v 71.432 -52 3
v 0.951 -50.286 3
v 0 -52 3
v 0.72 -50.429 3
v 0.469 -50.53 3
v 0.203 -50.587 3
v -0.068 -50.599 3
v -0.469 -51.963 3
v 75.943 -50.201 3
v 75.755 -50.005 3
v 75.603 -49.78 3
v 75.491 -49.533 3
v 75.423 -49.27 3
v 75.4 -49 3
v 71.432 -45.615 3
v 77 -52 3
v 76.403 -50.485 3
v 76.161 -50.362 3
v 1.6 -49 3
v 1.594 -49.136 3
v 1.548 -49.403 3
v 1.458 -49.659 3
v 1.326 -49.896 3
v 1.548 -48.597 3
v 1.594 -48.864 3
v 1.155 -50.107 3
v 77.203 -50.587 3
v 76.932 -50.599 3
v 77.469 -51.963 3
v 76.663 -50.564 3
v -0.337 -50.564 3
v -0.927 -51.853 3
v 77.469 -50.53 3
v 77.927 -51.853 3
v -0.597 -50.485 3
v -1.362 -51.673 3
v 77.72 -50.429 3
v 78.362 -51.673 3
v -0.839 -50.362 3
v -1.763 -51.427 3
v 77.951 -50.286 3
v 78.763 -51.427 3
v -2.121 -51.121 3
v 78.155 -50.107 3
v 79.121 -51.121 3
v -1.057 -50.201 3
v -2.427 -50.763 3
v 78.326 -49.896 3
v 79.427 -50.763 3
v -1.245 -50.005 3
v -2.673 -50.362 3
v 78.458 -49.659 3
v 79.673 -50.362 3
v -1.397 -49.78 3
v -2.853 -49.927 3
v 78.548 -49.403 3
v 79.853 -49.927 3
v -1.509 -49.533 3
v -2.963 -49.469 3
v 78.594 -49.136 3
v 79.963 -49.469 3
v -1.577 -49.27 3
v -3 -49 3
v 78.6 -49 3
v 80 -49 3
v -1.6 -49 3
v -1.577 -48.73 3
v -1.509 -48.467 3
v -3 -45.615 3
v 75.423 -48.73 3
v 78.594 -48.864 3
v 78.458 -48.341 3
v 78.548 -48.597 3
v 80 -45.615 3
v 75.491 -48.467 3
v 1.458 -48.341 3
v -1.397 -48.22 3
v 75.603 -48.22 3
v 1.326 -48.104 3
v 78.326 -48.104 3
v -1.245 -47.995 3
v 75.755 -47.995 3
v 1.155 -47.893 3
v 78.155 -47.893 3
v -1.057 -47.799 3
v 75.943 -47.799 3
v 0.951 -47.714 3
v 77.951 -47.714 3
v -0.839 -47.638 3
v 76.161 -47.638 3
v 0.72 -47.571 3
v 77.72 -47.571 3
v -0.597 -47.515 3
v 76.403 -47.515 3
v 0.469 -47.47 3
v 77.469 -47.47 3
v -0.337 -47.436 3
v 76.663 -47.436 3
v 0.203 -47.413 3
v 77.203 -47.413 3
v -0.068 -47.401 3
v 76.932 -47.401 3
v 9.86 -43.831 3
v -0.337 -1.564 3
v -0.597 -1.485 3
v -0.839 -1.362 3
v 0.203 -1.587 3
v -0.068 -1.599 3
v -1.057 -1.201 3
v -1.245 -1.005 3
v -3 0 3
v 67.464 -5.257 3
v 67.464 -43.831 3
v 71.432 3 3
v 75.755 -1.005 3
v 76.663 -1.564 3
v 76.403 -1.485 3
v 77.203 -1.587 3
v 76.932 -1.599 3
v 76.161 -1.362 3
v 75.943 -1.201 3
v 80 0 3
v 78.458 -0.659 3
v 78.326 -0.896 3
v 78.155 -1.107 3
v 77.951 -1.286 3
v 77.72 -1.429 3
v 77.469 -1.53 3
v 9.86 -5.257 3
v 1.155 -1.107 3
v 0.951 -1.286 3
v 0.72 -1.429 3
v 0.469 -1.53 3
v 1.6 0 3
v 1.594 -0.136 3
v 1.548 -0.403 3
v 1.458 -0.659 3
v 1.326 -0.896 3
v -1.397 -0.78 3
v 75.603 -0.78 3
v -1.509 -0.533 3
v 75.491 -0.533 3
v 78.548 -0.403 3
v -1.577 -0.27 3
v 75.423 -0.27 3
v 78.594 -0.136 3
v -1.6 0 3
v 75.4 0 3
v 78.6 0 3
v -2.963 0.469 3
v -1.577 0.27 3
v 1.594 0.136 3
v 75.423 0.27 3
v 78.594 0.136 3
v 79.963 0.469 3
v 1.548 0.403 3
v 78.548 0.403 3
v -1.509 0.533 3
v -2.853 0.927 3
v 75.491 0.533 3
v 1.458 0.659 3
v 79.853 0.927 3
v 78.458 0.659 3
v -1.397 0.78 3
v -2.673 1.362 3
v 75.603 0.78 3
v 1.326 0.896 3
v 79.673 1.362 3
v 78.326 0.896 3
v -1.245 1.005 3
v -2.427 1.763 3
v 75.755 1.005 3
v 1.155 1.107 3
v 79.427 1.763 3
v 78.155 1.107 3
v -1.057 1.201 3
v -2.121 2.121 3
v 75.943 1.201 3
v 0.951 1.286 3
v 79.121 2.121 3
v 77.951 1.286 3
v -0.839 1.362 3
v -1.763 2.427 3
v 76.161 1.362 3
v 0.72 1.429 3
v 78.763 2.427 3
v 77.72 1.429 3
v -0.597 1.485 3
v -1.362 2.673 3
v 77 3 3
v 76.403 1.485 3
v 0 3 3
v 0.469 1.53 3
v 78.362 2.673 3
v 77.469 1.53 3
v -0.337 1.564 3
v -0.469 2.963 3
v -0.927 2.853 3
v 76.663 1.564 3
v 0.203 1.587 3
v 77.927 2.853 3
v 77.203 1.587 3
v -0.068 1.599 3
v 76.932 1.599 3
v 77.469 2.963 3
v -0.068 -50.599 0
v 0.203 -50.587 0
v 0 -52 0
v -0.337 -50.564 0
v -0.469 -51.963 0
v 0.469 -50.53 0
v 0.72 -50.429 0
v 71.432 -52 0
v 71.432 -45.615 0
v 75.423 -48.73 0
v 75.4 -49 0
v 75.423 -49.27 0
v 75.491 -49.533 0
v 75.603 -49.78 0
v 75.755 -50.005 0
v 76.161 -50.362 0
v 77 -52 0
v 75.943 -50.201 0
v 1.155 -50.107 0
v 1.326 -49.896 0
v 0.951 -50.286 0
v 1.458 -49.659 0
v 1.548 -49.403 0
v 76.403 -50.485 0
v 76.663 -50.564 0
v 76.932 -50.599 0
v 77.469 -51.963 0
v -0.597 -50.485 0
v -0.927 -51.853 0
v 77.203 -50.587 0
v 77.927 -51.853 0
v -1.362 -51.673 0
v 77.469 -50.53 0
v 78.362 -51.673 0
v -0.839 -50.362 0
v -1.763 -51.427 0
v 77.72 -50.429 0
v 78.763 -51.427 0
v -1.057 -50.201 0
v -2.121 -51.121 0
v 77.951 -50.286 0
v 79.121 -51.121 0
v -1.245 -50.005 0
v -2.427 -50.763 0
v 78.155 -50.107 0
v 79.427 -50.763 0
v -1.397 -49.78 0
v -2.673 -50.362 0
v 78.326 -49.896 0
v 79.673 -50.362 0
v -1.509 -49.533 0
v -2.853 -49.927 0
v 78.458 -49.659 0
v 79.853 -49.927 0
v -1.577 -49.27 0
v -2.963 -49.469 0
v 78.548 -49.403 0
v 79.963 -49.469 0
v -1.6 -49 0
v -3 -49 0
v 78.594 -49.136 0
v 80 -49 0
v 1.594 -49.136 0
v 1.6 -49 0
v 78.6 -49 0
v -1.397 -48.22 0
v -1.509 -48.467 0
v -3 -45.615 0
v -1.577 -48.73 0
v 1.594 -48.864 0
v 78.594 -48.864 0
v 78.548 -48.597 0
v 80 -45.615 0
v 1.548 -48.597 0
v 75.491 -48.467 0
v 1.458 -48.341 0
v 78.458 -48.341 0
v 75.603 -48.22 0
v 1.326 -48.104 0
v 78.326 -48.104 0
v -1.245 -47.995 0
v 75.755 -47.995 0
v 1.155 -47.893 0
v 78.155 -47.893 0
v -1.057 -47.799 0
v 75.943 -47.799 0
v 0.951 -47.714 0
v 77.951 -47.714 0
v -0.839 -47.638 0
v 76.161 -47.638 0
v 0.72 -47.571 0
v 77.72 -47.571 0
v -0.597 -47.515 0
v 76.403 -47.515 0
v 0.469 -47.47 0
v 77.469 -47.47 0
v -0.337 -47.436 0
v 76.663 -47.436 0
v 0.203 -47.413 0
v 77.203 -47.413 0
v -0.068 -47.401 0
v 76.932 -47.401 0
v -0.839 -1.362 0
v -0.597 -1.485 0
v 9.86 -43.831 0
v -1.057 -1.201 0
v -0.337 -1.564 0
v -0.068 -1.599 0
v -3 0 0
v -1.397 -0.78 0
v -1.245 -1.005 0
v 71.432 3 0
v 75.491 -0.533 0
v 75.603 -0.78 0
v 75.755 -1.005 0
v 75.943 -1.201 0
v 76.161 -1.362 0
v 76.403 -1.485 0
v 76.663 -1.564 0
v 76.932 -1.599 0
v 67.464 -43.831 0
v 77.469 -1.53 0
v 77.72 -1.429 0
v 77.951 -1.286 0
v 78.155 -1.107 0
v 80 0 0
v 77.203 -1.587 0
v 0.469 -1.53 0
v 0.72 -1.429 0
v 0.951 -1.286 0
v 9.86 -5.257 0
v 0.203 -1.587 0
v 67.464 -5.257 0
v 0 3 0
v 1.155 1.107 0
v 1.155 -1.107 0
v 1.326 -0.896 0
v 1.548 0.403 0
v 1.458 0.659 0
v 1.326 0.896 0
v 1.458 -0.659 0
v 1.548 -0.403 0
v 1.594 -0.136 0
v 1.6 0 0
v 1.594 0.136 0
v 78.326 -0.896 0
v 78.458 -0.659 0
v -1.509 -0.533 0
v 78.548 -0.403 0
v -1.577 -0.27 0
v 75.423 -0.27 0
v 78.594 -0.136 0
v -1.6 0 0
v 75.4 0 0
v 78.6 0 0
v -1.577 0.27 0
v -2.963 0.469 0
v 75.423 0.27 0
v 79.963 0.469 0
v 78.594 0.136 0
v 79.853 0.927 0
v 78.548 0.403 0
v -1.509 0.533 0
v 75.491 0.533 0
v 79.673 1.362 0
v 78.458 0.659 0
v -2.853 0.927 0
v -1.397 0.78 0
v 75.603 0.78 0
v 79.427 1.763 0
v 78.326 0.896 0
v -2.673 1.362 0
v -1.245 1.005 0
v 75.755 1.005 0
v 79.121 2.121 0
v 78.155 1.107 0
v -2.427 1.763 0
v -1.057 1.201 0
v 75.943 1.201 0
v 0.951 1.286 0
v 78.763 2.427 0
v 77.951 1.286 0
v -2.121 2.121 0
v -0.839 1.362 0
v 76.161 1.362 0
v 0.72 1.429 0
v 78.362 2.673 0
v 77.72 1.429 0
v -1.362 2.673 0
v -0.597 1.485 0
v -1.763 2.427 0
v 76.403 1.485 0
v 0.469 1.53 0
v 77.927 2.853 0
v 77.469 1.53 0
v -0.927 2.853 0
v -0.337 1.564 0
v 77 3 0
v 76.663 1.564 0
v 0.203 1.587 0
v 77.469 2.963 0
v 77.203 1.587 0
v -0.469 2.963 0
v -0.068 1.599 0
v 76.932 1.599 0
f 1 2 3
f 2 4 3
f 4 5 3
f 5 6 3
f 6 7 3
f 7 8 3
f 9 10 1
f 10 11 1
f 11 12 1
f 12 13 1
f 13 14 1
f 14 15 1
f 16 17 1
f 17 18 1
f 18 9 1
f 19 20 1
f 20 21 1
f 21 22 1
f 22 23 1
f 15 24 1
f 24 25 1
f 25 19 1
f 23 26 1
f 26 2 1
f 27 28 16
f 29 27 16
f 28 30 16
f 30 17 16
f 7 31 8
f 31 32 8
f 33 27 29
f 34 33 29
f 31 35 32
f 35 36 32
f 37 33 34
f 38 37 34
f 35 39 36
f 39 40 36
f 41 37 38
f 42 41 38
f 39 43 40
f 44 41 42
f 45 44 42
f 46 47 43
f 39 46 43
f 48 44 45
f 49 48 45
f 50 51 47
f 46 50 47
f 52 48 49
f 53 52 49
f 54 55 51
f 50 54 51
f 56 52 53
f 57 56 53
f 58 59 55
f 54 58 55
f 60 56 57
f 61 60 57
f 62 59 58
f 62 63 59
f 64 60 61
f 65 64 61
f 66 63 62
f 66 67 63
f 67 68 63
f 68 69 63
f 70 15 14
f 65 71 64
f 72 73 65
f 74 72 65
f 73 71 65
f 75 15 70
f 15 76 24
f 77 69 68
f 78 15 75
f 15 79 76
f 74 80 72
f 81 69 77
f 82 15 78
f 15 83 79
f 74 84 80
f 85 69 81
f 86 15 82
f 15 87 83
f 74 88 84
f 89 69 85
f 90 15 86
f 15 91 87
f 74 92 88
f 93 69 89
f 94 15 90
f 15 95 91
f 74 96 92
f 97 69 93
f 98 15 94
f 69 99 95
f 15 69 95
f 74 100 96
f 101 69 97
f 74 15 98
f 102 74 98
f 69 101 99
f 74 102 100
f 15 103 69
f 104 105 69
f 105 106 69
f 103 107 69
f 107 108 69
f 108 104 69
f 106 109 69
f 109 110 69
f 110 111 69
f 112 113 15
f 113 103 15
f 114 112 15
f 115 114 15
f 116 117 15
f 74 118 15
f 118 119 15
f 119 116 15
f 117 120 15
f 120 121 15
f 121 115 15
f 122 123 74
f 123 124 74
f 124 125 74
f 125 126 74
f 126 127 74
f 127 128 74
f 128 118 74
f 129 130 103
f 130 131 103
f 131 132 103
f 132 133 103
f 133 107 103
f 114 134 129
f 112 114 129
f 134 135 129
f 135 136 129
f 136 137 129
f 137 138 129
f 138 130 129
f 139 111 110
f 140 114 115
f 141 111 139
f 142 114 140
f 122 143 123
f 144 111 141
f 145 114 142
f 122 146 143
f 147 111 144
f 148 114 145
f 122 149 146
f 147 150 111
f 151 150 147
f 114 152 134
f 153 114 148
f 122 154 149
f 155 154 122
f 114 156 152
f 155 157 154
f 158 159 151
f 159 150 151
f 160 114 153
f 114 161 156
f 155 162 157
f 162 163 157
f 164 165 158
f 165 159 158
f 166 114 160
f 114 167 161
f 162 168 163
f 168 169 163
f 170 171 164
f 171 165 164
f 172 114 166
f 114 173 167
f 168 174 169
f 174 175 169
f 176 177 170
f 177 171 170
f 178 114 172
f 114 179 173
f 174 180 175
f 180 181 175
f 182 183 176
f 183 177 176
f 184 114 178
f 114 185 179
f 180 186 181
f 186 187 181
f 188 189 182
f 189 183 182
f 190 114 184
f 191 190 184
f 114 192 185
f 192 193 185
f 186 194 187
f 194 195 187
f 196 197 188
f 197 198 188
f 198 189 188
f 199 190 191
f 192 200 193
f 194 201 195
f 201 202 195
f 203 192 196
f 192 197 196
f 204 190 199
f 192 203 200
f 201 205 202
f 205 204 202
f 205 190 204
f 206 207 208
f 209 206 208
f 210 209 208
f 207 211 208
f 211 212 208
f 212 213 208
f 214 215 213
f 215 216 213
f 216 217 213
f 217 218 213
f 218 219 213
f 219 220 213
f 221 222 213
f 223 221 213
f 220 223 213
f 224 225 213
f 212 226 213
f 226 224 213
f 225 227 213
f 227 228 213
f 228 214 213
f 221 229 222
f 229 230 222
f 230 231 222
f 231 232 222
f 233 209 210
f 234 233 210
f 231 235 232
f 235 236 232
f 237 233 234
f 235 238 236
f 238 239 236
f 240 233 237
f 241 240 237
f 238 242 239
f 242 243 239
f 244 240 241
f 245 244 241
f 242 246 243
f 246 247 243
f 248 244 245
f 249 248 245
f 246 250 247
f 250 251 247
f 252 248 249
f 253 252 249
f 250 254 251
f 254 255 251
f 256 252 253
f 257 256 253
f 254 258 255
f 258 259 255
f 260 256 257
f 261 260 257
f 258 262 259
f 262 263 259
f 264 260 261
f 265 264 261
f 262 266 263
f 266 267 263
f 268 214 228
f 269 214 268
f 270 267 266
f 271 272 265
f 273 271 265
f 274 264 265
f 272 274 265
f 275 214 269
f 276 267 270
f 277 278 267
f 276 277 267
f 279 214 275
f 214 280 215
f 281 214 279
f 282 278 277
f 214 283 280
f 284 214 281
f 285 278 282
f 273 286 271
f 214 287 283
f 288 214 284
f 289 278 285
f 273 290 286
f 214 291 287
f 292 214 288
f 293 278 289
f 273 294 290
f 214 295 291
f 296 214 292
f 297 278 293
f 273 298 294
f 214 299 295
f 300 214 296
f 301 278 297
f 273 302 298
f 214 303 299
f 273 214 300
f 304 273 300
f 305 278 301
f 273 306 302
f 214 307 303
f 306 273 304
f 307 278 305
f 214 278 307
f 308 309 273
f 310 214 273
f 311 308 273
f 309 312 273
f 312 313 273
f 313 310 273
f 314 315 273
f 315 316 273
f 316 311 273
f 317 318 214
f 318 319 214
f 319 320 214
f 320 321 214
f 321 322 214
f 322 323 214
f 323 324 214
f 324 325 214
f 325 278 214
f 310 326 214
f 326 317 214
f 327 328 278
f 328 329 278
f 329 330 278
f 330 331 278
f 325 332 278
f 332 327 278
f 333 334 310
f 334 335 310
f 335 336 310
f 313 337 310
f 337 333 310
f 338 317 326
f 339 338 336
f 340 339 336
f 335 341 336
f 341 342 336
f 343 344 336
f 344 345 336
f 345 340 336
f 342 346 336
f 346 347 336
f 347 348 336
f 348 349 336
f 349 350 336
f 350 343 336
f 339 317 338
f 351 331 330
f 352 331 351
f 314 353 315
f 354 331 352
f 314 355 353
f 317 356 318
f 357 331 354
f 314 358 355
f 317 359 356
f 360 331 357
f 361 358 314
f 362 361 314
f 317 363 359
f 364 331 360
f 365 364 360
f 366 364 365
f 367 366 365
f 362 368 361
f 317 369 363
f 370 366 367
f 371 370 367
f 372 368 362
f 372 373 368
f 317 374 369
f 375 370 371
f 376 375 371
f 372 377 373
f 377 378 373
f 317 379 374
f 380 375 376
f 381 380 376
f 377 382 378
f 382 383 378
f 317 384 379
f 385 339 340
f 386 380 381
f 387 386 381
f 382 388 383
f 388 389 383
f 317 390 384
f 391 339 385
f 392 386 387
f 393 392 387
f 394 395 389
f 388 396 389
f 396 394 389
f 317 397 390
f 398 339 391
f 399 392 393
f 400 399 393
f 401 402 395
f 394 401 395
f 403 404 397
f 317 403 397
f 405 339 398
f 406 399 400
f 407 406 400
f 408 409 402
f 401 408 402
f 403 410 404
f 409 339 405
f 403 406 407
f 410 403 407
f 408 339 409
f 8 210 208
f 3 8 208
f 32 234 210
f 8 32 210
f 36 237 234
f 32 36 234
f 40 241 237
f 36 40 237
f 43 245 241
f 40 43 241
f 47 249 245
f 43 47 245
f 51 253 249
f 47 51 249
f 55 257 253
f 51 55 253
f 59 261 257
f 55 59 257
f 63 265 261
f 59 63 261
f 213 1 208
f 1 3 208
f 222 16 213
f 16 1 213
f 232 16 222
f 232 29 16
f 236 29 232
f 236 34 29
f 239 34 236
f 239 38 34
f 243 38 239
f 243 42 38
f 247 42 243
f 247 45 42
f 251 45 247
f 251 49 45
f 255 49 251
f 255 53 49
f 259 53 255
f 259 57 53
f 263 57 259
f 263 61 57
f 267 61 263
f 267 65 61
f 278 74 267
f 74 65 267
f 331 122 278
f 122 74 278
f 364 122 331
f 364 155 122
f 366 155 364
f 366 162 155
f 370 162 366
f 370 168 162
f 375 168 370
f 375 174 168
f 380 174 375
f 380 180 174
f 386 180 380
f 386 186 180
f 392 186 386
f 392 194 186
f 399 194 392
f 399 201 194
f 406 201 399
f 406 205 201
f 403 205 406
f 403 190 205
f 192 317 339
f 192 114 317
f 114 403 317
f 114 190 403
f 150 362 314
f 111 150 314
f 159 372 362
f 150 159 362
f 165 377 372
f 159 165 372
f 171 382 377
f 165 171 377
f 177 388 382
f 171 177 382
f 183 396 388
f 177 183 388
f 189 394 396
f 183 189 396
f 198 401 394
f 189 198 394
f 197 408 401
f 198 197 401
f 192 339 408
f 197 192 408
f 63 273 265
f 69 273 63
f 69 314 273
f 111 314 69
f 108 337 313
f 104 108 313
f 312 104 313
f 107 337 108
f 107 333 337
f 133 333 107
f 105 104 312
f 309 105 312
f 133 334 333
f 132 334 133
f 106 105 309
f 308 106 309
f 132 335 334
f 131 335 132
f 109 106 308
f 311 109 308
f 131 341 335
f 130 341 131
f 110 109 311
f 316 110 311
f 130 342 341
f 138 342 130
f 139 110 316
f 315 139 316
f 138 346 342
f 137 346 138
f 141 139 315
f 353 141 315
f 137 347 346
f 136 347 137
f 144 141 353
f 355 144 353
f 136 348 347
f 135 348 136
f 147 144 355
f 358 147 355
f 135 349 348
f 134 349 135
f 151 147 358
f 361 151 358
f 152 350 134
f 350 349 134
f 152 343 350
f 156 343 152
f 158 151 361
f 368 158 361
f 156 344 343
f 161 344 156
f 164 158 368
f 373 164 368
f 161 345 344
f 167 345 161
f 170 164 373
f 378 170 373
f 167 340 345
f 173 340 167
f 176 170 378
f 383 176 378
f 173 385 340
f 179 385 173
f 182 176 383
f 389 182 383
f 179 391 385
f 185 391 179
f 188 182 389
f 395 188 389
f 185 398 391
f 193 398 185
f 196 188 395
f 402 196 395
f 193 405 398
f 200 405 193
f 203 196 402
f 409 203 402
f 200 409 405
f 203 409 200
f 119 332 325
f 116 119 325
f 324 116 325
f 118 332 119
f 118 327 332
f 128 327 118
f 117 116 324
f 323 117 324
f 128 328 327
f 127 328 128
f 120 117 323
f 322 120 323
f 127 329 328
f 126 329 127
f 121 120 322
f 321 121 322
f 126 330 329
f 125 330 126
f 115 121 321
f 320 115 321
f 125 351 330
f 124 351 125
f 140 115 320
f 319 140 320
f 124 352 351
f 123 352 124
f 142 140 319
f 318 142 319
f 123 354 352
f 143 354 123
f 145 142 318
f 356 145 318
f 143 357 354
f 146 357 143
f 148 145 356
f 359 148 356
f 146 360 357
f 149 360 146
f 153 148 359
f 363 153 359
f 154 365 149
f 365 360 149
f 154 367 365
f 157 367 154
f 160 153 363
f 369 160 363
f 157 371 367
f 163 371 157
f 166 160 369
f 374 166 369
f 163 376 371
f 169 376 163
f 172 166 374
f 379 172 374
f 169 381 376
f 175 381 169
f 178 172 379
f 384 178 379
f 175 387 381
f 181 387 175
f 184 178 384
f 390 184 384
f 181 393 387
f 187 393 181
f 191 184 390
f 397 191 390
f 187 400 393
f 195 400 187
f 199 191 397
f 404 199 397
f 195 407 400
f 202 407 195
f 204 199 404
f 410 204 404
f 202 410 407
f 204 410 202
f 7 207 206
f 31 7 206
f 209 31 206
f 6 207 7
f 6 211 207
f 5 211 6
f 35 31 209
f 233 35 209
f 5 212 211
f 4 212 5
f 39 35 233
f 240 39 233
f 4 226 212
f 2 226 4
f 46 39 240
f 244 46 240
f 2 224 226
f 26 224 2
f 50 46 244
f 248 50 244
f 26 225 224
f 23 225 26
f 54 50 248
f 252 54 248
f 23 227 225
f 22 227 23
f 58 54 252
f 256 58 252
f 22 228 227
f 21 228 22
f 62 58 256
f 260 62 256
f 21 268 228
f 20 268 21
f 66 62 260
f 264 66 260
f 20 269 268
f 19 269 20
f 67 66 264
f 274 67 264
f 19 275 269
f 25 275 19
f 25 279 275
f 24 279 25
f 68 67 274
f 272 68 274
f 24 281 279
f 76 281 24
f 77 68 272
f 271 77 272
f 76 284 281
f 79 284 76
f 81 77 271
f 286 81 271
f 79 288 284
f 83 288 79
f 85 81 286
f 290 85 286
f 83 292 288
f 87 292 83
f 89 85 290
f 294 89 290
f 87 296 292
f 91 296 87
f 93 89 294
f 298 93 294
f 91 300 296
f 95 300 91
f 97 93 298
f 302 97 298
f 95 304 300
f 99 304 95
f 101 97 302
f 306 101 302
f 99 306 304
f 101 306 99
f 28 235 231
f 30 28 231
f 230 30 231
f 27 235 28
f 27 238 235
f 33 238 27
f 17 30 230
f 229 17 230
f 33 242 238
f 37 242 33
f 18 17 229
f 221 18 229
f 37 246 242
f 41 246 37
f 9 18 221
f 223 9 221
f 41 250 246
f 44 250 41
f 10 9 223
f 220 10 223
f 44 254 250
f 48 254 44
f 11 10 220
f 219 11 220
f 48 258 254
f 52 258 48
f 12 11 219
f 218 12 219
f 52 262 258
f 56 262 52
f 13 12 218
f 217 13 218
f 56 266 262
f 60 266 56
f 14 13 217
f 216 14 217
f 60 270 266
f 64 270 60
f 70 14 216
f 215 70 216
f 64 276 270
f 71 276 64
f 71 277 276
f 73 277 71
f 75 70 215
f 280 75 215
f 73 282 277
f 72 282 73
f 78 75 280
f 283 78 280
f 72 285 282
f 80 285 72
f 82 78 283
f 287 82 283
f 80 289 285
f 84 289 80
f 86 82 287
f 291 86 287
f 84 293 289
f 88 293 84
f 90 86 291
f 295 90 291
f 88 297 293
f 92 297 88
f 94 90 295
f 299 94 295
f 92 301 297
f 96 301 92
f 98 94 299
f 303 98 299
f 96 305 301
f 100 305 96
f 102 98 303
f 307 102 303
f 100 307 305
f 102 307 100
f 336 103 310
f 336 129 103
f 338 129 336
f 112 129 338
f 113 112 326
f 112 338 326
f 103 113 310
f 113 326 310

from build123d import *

# Parameters (mm, degrees)
SKETCH_1_R          = 1.6
EXTRUDE_1_DEPTH     = 3
SKETCH_3_W          = 57.604070615
SKETCH_3_H          = 38.574154429
CUT_EXTRUDE_1_DEPTH = 10


with BuildPart() as part:
    # 草图1 → 凸台-拉伸1 (new body)
    with BuildSketch(Plane.XY):
        with BuildLine():
            Line((0, -52), (77, -52))
            ThreePointArc((77, -52), (79.121320344, -51.121320344), (80, -49))
            Line((80, -49), (80, 0))
            ThreePointArc((80, 0), (79.121320344, 2.121320344), (77, 3))
            Line((77, 3), (0, 3))
            ThreePointArc((0, 3), (-2.121320344, 2.121320344), (-3, 0))
            Line((-3, 0), (-3, -49))
            ThreePointArc((-3, -49), (-2.121320344, -51.121320344), (0, -52))
        make_face()
        Circle(SKETCH_1_R, mode=Mode.SUBTRACT)
        with Locations((77, 0)):
            Circle(SKETCH_1_R, mode=Mode.SUBTRACT)
        with Locations((0, -49)):
            Circle(SKETCH_1_R, mode=Mode.SUBTRACT)
        with Locations((77, -49)):
            Circle(SKETCH_1_R, mode=Mode.SUBTRACT)
        with BuildLine():
            Line((16.5, -41.5), (60.5, -41.5))
            ThreePointArc((60.5, -41.5), (62.621320344, -40.621320344), (63.5, -38.5))
            Line((63.5, -38.5), (63.5, -10.5))
            ThreePointArc((63.5, -10.5), (62.621320344, -8.378679656), (60.5, -7.5))
            Line((60.5, -7.5), (16.5, -7.5))
            ThreePointArc((16.5, -7.5), (14.378679656, -8.378679656), (13.5, -10.5))
            Line((13.5, -10.5), (13.5, -38.5))
            ThreePointArc((13.5, -38.5), (14.378679656, -40.621320344), (16.5, -41.5))
        make_face(mode=Mode.SUBTRACT)
    extrude(amount=EXTRUDE_1_DEPTH)

    # 草图3 → 切除-拉伸1 (cut)
    with BuildSketch(Plane.XY.offset(3)):
        with Locations((38.662365372, -24.543784479)):
            Rectangle(SKETCH_3_W, SKETCH_3_H)
    extrude(amount=-CUT_EXTRUDE_1_DEPTH, mode=Mode.SUBTRACT)


solid = part.part
